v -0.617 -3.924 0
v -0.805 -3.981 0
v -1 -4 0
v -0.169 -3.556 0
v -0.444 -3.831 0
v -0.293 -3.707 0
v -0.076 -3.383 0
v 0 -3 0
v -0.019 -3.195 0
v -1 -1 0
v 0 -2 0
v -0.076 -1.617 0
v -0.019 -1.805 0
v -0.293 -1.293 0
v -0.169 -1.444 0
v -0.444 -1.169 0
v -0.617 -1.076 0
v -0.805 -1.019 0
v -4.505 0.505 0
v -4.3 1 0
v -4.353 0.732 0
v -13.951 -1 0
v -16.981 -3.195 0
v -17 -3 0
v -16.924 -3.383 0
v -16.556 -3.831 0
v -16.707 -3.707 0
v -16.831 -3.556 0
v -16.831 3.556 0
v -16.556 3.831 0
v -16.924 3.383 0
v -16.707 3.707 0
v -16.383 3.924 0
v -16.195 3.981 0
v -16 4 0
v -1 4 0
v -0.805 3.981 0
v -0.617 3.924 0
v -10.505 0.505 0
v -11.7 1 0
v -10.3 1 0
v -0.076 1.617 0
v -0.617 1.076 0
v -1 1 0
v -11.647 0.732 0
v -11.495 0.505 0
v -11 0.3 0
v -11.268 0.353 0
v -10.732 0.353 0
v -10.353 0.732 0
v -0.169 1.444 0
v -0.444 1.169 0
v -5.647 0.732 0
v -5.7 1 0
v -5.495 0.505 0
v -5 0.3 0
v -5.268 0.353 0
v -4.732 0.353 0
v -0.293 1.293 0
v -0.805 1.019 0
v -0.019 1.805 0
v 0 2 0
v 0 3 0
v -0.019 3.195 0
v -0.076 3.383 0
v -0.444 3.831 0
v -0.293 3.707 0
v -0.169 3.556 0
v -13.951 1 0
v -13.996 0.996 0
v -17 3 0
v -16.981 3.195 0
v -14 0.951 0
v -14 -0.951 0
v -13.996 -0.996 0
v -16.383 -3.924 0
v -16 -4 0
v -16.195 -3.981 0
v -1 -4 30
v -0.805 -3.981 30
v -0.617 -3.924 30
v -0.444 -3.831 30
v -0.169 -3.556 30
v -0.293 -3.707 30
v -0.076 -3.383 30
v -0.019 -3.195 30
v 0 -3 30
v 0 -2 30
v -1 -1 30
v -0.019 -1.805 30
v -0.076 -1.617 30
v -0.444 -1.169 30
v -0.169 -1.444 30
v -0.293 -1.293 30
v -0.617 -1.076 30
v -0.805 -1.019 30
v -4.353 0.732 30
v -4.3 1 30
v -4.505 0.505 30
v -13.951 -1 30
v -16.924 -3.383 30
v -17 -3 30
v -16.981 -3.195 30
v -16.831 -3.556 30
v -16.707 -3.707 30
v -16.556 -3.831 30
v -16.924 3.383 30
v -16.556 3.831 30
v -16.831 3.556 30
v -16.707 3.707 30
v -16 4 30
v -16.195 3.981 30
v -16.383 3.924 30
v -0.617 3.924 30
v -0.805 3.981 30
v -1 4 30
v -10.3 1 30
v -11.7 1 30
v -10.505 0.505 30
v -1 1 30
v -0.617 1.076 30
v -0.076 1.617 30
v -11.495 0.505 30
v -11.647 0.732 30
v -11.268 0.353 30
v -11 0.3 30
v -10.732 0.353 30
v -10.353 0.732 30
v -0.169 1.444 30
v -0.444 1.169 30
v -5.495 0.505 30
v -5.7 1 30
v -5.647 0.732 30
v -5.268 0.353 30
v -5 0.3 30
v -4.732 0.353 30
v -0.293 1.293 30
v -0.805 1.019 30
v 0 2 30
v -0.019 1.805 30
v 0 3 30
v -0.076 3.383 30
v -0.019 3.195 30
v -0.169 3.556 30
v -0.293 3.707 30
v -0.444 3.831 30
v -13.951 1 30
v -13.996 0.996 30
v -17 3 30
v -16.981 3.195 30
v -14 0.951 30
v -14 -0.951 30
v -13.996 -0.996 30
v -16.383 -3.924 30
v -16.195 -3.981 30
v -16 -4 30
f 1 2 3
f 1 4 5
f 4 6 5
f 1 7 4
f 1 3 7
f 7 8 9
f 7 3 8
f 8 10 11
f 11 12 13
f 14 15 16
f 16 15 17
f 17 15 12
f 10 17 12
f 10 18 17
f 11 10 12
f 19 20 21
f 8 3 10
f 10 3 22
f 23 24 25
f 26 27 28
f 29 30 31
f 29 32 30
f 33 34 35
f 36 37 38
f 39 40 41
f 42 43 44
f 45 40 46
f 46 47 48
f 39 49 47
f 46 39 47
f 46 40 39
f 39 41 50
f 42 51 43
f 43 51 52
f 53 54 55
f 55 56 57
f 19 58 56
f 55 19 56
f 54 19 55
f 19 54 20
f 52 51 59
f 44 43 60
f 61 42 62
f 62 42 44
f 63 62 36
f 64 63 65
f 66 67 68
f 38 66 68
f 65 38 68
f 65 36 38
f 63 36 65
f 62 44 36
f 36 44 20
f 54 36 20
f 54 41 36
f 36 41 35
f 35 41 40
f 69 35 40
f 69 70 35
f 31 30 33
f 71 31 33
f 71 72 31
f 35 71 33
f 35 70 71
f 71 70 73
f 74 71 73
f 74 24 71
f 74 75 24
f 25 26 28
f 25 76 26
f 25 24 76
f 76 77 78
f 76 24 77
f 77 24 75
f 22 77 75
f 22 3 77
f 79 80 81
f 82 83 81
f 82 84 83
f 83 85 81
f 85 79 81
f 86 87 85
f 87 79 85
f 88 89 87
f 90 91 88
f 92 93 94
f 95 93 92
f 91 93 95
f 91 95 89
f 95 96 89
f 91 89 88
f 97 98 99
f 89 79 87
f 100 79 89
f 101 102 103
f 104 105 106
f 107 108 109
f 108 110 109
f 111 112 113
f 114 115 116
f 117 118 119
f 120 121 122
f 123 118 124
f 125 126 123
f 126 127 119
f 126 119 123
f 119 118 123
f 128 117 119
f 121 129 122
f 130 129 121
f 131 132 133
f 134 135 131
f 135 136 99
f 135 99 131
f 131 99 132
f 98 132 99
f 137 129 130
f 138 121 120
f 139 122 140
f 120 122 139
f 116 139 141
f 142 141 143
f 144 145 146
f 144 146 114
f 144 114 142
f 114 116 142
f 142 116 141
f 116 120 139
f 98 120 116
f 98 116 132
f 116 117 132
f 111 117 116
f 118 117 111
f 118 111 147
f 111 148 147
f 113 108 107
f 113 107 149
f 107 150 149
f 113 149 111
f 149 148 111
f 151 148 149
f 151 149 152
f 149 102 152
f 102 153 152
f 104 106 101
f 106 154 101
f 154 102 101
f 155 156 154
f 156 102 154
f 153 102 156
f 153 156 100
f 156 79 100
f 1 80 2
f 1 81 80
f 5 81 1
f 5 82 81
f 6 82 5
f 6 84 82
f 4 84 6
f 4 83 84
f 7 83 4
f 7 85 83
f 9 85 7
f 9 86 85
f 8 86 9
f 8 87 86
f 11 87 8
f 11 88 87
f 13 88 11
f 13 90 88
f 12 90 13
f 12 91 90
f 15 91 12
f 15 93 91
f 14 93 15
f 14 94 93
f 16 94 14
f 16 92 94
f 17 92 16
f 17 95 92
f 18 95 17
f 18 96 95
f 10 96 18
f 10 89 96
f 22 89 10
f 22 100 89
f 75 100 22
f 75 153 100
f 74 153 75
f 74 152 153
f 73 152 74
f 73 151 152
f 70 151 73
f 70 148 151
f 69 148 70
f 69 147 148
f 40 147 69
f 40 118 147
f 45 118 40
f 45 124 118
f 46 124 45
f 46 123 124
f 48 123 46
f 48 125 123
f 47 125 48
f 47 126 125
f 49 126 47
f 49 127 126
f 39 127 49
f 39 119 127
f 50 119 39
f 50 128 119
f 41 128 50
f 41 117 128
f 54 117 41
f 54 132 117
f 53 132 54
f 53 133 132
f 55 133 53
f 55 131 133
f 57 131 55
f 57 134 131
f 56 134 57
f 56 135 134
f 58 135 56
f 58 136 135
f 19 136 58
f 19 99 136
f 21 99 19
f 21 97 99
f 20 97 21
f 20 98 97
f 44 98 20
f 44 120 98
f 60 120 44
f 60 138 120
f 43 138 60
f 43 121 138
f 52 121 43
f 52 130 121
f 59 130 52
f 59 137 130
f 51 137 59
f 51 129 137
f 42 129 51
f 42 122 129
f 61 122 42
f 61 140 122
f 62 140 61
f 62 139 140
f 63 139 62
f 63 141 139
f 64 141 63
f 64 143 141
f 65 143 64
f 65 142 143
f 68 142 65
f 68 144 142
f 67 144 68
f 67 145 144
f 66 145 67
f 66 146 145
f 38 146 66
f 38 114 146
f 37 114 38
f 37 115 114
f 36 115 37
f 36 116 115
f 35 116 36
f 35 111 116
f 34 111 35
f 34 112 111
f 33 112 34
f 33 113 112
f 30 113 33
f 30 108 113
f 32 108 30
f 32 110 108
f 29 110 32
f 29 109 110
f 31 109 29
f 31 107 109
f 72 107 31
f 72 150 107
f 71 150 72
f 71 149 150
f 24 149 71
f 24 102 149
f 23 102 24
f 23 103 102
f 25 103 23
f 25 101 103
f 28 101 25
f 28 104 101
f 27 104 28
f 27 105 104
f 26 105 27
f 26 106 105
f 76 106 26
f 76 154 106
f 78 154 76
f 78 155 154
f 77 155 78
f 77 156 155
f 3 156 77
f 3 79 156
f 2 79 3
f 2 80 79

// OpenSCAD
// bagclip_slide — a C-channel you slide over the bag's folded top from the side.
// A detent bump in the channel grips the bag. RIGID, durable in PLA. The profile
// is extruded along Z (the slide length); prints flat, support-free.

clip_len = 30;     // length along the bag edge (Z) = slide length
gap      = 2.0;    // channel gap (folded bag thickness + light clearance)
jaw      = 3.0;    // jaw thickness
back     = 3.0;    // back-wall thickness
depth    = 17;     // how far the channel reaches in (X)
corner   = 1.0;    // outer rounding (keep < jaw/2 and < back/2 or the offset erodes the jaws)
bump     = 0.7;    // detent bump protrusion into the channel
n_bumps  = 2;

$fn = 32;

module frame2d() {
  offset(corner) offset(-corner)
    union() {
      translate([-depth,  gap/2])           square([depth, jaw]);        // top jaw
      translate([-depth, -gap/2 - jaw])      square([depth, jaw]);        // bottom jaw
      translate([-depth, -gap/2 - jaw])      square([back,  gap + 2*jaw]);// back wall
    }
}

module clip2d() {
  union() {
    frame2d();
    // grip detents on the top jaw, poking down into the channel
    for (i = [0 : n_bumps-1])
      translate([-depth + back + 3 + i * 6, gap/2]) circle(d = bump*2, $fn = 16);
  }
}

linear_extrude(clip_len) clip2d();
